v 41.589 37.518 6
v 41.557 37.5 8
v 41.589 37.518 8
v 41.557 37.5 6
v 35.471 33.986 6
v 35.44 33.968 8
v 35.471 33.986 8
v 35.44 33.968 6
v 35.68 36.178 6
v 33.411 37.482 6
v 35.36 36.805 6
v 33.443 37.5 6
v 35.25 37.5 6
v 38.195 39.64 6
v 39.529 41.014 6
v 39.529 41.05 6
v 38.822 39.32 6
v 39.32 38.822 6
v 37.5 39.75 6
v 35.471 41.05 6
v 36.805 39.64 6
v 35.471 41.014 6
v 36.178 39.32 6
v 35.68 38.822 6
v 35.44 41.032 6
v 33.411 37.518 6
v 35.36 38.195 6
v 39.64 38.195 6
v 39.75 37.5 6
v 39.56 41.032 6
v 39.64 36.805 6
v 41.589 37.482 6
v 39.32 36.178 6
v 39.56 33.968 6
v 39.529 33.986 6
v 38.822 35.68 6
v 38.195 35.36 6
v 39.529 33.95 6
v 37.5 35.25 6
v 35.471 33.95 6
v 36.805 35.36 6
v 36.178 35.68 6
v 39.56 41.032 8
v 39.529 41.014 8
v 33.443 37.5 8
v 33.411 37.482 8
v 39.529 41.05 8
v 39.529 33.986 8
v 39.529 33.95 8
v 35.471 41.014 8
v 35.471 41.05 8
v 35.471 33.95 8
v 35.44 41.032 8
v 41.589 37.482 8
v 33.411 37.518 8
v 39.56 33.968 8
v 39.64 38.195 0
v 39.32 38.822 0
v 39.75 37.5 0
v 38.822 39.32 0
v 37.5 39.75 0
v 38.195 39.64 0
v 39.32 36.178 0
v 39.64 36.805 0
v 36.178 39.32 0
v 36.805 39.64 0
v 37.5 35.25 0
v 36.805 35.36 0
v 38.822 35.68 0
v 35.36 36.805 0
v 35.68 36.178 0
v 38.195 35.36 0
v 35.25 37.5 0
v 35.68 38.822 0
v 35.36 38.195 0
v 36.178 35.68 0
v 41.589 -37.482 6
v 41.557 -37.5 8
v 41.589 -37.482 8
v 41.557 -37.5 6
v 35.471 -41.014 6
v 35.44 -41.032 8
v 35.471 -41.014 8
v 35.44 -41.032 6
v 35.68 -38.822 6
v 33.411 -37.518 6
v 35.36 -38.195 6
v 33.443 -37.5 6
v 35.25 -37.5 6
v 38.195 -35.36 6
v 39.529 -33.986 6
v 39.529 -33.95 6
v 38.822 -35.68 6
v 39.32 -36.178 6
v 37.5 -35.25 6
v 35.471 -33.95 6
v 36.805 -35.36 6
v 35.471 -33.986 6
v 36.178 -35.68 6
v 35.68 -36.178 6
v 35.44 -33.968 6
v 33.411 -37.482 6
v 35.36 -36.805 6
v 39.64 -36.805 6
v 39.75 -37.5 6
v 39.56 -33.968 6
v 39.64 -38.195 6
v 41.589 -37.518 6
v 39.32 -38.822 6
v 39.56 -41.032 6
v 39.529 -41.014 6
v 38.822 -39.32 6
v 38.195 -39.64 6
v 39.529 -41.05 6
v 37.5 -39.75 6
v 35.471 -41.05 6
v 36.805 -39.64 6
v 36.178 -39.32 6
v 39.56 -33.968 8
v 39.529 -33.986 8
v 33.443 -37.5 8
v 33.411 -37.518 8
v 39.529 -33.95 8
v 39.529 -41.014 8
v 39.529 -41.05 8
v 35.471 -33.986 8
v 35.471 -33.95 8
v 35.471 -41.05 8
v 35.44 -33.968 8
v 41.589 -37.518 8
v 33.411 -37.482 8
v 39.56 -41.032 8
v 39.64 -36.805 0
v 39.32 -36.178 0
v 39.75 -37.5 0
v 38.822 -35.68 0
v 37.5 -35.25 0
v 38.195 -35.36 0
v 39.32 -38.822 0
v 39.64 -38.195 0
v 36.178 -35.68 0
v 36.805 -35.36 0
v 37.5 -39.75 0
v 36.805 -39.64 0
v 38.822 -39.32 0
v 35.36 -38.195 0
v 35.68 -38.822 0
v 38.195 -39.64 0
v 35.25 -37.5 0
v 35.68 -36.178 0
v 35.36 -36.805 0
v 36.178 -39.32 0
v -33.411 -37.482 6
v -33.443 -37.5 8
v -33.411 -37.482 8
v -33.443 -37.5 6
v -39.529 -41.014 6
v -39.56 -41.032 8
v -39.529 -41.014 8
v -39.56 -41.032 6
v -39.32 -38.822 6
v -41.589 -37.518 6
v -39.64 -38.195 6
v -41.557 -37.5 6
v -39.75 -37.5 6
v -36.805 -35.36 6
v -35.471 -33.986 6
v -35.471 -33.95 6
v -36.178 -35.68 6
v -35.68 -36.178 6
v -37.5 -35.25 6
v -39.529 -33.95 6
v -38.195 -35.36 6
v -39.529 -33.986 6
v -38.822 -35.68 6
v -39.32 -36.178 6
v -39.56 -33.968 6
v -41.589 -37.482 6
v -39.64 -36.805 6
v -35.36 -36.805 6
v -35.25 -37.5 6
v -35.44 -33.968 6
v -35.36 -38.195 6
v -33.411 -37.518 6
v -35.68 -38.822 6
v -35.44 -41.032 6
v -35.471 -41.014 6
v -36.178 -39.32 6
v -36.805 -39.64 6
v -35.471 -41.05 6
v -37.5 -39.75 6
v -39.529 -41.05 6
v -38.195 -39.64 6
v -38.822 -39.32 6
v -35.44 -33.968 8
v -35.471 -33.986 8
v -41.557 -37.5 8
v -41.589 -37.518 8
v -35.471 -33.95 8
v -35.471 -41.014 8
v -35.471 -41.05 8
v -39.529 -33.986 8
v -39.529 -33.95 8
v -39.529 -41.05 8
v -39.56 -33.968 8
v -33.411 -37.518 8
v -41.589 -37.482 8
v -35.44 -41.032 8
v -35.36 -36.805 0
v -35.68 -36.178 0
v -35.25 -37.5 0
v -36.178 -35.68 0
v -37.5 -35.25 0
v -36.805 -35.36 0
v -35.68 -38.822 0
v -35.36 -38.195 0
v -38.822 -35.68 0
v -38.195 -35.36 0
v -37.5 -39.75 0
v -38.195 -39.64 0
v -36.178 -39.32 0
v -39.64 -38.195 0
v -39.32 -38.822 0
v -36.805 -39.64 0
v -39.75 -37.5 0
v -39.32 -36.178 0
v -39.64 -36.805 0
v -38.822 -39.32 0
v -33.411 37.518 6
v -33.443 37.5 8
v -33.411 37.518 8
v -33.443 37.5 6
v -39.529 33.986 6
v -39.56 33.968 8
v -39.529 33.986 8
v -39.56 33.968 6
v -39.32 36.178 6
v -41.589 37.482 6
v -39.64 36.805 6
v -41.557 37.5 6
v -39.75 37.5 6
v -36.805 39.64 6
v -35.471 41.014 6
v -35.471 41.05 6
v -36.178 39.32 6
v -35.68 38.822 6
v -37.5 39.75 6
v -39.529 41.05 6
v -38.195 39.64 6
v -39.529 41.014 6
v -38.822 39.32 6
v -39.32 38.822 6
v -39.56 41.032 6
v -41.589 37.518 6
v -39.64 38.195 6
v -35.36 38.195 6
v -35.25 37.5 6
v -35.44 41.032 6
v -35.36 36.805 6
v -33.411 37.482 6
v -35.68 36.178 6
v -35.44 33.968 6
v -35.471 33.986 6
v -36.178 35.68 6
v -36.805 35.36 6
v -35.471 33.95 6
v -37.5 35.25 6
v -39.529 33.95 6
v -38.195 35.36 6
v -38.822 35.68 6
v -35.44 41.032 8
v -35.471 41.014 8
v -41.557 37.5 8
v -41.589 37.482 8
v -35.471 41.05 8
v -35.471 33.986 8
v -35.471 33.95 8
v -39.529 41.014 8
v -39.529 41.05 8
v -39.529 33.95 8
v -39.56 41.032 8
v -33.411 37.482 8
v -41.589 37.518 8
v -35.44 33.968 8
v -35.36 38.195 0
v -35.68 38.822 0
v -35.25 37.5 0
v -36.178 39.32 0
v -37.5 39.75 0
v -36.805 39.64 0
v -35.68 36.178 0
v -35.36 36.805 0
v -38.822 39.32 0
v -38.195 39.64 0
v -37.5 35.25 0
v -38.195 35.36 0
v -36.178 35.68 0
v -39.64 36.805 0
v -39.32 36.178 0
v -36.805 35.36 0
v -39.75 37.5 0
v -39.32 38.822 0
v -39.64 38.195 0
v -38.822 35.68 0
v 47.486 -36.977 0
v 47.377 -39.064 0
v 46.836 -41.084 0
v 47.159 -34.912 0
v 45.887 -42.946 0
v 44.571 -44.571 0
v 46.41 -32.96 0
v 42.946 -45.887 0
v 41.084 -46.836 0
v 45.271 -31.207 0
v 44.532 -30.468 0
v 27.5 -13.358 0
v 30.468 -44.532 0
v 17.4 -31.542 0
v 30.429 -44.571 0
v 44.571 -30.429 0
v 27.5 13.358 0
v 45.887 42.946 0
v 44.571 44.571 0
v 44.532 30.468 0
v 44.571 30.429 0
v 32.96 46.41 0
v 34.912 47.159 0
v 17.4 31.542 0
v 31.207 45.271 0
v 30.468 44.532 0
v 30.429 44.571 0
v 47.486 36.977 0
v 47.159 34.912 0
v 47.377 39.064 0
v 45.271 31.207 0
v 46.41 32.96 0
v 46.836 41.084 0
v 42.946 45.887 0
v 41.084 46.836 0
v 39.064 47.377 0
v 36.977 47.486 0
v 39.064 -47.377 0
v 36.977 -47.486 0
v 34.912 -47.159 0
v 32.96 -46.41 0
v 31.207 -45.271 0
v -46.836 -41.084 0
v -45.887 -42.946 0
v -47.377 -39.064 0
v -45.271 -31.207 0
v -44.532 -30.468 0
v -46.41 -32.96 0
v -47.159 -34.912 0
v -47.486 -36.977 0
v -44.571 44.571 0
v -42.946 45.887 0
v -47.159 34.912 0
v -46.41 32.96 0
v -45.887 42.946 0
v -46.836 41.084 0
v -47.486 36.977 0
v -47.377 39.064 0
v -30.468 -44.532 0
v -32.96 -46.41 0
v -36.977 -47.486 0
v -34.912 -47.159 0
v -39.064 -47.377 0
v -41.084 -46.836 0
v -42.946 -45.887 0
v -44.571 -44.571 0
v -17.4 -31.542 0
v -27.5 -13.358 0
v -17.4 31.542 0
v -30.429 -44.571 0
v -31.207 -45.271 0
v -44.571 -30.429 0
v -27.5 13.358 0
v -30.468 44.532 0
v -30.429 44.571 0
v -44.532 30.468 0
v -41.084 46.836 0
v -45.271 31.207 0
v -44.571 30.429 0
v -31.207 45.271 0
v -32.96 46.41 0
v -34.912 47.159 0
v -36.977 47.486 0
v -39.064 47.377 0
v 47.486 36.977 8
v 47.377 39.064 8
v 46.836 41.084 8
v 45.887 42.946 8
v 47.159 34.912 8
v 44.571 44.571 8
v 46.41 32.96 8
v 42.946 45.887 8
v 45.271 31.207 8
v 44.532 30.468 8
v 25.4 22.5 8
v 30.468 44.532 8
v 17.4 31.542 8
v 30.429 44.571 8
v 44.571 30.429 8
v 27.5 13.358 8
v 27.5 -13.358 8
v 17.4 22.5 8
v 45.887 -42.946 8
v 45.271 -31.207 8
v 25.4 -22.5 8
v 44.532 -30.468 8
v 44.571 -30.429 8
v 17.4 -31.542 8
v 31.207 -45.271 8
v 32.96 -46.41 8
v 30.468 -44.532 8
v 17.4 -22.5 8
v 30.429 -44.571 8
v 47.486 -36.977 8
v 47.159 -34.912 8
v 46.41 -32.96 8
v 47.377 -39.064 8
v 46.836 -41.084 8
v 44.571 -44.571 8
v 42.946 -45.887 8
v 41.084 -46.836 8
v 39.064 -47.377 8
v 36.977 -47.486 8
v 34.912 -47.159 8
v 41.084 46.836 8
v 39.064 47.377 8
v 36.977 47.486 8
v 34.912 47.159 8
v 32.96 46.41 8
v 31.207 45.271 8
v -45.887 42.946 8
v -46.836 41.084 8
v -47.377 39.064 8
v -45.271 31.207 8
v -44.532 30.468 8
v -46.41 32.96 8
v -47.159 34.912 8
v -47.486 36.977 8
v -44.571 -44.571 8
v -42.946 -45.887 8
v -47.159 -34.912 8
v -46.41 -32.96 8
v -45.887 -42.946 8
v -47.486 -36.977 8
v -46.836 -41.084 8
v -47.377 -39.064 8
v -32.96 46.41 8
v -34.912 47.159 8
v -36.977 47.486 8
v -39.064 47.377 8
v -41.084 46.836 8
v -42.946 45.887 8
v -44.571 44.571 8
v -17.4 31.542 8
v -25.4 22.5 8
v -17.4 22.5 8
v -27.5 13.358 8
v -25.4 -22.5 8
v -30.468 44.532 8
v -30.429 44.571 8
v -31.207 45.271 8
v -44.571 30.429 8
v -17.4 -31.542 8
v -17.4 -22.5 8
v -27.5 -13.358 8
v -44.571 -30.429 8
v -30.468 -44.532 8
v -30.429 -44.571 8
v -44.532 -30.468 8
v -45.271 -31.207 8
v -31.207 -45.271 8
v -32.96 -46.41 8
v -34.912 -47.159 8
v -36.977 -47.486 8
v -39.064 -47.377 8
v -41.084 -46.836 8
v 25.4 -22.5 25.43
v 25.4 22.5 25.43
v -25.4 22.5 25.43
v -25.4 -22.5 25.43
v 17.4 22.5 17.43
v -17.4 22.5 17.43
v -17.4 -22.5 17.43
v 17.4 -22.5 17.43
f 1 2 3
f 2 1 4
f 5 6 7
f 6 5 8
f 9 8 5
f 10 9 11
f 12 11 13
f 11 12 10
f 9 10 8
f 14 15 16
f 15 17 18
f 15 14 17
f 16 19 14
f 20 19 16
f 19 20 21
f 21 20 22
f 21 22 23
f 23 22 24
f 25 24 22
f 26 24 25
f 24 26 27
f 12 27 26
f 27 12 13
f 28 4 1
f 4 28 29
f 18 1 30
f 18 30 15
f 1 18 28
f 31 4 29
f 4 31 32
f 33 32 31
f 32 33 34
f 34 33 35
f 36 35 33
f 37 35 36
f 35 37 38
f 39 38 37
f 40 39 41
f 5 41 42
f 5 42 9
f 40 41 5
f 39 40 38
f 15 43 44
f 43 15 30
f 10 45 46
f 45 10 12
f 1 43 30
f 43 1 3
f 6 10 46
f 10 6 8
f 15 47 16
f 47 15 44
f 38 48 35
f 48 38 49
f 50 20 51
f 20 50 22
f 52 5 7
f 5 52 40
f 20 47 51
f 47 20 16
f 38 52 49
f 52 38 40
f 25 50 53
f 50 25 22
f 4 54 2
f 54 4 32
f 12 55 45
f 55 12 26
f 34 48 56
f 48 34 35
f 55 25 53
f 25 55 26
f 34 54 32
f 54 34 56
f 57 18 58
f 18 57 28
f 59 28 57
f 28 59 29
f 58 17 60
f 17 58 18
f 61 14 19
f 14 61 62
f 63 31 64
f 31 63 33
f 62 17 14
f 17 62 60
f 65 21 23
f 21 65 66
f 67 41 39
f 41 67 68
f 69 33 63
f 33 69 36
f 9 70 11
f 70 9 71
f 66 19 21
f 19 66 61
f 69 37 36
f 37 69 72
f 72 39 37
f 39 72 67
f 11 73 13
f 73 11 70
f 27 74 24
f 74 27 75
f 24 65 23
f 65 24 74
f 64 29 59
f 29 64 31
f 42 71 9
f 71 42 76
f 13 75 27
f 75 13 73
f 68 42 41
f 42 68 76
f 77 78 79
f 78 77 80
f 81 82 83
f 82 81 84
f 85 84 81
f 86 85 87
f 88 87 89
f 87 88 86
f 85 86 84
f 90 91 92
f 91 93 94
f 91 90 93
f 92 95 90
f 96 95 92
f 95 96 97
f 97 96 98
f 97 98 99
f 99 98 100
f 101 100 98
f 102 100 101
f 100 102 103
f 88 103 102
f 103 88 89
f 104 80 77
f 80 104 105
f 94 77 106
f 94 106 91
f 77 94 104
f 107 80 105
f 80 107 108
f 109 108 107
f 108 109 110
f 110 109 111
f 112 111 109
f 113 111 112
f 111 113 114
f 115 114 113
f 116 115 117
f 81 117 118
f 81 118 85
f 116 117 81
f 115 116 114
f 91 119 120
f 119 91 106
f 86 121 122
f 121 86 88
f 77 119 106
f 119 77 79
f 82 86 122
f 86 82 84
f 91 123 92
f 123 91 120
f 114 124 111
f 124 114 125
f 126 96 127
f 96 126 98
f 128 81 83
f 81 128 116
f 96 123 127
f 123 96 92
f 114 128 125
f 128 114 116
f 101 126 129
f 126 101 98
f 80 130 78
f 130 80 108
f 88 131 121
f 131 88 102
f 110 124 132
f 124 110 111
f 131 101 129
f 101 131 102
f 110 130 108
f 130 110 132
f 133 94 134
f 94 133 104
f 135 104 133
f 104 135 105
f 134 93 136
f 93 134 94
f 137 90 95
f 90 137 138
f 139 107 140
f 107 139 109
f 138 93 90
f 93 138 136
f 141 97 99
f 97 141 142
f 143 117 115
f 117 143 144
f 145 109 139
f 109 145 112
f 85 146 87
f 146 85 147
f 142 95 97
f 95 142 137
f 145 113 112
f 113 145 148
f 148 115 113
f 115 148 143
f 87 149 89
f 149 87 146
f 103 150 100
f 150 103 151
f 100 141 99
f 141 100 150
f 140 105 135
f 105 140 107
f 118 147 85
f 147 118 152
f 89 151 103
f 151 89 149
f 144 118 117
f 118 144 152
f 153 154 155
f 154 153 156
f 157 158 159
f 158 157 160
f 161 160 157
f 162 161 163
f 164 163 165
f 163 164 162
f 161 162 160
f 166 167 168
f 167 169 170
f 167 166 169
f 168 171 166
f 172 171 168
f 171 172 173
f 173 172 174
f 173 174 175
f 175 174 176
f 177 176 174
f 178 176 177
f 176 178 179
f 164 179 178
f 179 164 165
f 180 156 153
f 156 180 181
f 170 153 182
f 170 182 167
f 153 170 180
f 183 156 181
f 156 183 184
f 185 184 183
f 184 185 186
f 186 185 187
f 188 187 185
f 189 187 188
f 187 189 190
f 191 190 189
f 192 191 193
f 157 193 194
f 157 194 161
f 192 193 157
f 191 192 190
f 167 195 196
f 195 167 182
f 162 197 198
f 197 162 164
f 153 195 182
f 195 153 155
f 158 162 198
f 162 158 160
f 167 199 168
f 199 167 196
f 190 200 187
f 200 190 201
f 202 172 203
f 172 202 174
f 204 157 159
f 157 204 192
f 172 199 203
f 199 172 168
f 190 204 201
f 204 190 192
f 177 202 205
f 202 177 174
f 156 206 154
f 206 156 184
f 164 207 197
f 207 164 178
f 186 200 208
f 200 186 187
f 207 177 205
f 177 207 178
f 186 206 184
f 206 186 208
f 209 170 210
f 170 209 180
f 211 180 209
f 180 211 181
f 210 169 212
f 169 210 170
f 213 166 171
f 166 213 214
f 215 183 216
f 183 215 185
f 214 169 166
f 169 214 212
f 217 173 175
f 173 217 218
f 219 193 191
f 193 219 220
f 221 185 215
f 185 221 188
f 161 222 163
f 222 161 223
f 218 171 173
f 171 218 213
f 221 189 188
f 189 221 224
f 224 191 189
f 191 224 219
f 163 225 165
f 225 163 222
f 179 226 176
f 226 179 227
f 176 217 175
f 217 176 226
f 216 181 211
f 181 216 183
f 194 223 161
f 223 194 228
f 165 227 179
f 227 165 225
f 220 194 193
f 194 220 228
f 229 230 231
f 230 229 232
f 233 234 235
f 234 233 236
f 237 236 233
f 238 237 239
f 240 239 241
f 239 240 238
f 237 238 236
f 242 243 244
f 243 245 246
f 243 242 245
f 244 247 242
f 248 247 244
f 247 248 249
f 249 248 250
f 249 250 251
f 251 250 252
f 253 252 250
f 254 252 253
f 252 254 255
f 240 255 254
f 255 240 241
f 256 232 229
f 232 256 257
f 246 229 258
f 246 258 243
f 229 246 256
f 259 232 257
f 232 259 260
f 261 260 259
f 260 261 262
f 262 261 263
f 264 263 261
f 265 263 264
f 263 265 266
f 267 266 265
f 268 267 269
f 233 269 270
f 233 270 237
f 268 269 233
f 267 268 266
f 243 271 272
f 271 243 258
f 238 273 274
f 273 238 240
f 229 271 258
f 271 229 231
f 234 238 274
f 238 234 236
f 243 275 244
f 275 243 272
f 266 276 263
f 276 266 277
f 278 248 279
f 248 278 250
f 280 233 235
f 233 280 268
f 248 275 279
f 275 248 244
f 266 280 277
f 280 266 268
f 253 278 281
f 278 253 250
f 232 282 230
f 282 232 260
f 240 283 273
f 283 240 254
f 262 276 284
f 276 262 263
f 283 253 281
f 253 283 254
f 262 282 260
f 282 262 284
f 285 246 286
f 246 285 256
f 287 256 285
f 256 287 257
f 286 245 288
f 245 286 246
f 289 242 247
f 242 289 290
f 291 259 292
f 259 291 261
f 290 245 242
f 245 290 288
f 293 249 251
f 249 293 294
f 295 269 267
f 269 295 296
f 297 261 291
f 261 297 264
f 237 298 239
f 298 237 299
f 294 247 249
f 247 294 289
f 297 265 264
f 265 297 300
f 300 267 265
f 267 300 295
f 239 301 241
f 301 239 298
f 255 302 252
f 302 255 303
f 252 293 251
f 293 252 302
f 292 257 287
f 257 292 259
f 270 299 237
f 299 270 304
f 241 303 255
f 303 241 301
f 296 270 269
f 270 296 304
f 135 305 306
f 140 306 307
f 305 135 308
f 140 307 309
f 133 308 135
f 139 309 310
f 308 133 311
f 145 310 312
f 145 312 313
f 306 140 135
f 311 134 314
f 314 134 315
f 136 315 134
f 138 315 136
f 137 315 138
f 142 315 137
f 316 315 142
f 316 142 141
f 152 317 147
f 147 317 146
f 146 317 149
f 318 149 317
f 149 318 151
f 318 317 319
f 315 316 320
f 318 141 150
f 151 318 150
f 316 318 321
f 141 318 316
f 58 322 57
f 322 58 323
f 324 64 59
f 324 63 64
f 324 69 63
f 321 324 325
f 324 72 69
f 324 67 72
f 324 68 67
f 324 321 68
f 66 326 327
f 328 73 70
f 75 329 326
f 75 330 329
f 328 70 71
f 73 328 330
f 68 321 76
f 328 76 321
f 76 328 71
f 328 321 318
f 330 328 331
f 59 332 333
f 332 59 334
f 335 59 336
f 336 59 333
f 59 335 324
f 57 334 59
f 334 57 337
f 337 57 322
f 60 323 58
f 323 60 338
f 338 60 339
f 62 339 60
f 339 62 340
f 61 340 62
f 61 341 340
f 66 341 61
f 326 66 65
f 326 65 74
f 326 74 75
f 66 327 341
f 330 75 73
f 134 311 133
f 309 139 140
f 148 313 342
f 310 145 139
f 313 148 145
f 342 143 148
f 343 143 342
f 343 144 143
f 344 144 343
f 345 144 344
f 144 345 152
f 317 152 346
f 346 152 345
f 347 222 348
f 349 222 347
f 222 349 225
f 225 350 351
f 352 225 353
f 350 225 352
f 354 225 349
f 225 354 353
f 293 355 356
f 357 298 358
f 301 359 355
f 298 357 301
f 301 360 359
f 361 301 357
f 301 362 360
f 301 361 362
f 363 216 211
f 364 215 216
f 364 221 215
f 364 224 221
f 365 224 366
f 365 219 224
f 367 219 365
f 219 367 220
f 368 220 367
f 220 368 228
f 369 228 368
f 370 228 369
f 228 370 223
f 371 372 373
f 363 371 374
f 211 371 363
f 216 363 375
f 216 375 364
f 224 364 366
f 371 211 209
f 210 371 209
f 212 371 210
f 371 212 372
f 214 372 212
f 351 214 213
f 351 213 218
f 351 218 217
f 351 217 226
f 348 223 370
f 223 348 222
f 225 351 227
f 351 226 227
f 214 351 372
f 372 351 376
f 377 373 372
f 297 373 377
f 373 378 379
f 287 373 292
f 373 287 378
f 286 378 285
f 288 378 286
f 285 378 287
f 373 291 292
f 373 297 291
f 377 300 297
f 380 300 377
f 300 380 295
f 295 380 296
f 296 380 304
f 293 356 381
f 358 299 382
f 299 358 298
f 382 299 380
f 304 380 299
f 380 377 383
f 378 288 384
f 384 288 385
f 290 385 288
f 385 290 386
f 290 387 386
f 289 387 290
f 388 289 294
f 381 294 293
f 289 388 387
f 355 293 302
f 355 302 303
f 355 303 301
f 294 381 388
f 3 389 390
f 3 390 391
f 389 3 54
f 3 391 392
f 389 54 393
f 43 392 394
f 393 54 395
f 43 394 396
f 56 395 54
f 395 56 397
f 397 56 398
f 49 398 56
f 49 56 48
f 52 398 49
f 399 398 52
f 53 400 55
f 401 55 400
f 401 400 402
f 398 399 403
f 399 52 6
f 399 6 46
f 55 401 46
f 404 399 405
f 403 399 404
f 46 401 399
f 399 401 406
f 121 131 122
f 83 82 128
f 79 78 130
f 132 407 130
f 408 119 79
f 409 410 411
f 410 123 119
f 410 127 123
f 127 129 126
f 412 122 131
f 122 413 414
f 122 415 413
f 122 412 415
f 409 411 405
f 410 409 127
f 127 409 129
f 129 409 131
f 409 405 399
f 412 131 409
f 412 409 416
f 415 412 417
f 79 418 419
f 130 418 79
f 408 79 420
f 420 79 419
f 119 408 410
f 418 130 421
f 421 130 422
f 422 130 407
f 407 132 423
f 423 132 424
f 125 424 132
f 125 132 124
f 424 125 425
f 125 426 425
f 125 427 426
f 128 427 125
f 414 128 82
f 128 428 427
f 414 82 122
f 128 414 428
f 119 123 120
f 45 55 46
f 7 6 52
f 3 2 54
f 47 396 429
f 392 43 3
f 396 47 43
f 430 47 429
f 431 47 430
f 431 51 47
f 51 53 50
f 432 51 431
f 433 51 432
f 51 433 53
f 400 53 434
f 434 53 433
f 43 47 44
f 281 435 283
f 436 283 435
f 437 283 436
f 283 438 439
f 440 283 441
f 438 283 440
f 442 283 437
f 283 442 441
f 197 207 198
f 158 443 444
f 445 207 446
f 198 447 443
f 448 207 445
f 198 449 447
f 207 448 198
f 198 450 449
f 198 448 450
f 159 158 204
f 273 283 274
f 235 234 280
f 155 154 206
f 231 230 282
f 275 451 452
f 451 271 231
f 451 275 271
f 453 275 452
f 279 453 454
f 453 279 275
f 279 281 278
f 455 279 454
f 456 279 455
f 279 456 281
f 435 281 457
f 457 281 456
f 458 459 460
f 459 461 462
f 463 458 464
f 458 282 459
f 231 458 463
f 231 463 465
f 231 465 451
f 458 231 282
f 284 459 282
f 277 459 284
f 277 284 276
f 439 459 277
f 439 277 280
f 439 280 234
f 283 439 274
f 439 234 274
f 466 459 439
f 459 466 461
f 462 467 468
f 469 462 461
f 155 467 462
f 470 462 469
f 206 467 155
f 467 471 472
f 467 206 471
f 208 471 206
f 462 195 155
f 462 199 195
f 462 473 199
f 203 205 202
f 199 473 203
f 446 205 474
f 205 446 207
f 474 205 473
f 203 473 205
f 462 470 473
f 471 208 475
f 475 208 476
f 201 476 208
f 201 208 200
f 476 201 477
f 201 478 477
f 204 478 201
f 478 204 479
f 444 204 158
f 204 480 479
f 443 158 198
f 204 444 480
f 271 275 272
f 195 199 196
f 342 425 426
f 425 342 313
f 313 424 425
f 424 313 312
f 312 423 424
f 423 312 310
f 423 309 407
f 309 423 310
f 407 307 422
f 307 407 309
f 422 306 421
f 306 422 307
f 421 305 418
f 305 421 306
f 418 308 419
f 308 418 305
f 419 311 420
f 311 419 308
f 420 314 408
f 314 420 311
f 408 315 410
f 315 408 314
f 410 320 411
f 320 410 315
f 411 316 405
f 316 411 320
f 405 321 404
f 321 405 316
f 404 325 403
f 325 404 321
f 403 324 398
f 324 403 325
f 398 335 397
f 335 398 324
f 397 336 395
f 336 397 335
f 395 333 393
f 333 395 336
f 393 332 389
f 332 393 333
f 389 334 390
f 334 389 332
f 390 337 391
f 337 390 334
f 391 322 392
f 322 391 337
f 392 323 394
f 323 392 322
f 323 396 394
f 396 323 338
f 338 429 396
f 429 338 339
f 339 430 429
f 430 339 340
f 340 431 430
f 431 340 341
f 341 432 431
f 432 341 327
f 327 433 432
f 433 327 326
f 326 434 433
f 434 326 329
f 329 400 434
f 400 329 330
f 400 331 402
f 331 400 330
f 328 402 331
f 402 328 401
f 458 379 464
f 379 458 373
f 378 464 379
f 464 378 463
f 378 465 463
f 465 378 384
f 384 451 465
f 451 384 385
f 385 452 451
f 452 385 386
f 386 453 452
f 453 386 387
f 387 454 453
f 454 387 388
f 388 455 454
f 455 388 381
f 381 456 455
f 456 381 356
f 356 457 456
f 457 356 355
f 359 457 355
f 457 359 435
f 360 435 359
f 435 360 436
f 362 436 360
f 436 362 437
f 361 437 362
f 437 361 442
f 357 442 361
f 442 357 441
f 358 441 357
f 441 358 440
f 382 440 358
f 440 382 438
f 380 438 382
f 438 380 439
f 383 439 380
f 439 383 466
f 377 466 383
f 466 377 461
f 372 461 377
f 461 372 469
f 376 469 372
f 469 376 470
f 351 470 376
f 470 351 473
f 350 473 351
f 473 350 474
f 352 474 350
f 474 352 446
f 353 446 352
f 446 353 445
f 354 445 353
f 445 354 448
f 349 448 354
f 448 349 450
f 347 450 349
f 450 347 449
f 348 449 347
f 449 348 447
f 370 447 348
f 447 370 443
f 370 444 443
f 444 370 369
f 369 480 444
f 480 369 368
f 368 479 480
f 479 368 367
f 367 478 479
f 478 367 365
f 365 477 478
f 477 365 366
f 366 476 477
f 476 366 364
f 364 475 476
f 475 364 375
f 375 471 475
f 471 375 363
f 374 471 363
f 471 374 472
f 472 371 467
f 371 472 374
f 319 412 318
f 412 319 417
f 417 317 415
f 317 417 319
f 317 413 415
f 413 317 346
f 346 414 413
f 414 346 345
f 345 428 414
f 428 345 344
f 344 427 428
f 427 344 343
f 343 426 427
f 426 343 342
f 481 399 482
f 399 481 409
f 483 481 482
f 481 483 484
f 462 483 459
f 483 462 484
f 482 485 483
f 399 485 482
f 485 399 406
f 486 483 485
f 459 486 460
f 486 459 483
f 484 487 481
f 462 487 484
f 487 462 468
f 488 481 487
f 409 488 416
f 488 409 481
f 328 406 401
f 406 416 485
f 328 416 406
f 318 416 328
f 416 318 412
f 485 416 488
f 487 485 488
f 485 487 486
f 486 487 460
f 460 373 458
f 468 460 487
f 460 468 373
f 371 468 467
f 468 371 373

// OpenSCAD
vesa = 75;
center_size = 55;

adapter_height = 17.43;
adapter_width = 34.3+0.5;
adapter_length = 45;

beam_size = 20;
base_thickness = 8;
nut_size = 7.1;
hole_size = 4.5;
nut_depth = 2;


module hexagon(size, height) {
  boxWidth = size/1.75;
  for (r = [-60, 0, 60]) rotate([0,0,r]) cube([boxWidth, size, height], true);
}



module hole() {
  translate([0,0, -base_thickness/2])
  cylinder(d=hole_size, base_thickness * 2, $fn=20);
  translate([0,0, base_thickness])
  hexagon(nut_size, nut_depth*2);
}

module beam() {
beam_len = vesa * sqrt(2);
square([beam_len, beam_size], center=true);
translate([beam_len/2, 0])
circle(d=beam_size);
translate([-beam_len/2, 0])
circle(d=beam_size);
}

module base() {
square([center_size, center_size], center = true);

rotate(45)
beam();

rotate(-45)
beam();
}

module body() {
difference() {
linear_extrude(base_thickness)
base();
  
translate([vesa/2, vesa/2])
hole();  
translate([vesa/2, -vesa/2])
hole();  
translate([-vesa/2, -vesa/2])
hole();  
 translate([-vesa/2, vesa/2])
hole();  
}

translate([0, 0, adapter_height/2 + 1*base_thickness])
cube([adapter_width+base_thickness*2, adapter_length, adapter_height], center=true);
}


difference() {
  body();

translate([0, 0, adapter_height/2 ])
cube([adapter_width, 2*adapter_width, adapter_height], center=true);
}
